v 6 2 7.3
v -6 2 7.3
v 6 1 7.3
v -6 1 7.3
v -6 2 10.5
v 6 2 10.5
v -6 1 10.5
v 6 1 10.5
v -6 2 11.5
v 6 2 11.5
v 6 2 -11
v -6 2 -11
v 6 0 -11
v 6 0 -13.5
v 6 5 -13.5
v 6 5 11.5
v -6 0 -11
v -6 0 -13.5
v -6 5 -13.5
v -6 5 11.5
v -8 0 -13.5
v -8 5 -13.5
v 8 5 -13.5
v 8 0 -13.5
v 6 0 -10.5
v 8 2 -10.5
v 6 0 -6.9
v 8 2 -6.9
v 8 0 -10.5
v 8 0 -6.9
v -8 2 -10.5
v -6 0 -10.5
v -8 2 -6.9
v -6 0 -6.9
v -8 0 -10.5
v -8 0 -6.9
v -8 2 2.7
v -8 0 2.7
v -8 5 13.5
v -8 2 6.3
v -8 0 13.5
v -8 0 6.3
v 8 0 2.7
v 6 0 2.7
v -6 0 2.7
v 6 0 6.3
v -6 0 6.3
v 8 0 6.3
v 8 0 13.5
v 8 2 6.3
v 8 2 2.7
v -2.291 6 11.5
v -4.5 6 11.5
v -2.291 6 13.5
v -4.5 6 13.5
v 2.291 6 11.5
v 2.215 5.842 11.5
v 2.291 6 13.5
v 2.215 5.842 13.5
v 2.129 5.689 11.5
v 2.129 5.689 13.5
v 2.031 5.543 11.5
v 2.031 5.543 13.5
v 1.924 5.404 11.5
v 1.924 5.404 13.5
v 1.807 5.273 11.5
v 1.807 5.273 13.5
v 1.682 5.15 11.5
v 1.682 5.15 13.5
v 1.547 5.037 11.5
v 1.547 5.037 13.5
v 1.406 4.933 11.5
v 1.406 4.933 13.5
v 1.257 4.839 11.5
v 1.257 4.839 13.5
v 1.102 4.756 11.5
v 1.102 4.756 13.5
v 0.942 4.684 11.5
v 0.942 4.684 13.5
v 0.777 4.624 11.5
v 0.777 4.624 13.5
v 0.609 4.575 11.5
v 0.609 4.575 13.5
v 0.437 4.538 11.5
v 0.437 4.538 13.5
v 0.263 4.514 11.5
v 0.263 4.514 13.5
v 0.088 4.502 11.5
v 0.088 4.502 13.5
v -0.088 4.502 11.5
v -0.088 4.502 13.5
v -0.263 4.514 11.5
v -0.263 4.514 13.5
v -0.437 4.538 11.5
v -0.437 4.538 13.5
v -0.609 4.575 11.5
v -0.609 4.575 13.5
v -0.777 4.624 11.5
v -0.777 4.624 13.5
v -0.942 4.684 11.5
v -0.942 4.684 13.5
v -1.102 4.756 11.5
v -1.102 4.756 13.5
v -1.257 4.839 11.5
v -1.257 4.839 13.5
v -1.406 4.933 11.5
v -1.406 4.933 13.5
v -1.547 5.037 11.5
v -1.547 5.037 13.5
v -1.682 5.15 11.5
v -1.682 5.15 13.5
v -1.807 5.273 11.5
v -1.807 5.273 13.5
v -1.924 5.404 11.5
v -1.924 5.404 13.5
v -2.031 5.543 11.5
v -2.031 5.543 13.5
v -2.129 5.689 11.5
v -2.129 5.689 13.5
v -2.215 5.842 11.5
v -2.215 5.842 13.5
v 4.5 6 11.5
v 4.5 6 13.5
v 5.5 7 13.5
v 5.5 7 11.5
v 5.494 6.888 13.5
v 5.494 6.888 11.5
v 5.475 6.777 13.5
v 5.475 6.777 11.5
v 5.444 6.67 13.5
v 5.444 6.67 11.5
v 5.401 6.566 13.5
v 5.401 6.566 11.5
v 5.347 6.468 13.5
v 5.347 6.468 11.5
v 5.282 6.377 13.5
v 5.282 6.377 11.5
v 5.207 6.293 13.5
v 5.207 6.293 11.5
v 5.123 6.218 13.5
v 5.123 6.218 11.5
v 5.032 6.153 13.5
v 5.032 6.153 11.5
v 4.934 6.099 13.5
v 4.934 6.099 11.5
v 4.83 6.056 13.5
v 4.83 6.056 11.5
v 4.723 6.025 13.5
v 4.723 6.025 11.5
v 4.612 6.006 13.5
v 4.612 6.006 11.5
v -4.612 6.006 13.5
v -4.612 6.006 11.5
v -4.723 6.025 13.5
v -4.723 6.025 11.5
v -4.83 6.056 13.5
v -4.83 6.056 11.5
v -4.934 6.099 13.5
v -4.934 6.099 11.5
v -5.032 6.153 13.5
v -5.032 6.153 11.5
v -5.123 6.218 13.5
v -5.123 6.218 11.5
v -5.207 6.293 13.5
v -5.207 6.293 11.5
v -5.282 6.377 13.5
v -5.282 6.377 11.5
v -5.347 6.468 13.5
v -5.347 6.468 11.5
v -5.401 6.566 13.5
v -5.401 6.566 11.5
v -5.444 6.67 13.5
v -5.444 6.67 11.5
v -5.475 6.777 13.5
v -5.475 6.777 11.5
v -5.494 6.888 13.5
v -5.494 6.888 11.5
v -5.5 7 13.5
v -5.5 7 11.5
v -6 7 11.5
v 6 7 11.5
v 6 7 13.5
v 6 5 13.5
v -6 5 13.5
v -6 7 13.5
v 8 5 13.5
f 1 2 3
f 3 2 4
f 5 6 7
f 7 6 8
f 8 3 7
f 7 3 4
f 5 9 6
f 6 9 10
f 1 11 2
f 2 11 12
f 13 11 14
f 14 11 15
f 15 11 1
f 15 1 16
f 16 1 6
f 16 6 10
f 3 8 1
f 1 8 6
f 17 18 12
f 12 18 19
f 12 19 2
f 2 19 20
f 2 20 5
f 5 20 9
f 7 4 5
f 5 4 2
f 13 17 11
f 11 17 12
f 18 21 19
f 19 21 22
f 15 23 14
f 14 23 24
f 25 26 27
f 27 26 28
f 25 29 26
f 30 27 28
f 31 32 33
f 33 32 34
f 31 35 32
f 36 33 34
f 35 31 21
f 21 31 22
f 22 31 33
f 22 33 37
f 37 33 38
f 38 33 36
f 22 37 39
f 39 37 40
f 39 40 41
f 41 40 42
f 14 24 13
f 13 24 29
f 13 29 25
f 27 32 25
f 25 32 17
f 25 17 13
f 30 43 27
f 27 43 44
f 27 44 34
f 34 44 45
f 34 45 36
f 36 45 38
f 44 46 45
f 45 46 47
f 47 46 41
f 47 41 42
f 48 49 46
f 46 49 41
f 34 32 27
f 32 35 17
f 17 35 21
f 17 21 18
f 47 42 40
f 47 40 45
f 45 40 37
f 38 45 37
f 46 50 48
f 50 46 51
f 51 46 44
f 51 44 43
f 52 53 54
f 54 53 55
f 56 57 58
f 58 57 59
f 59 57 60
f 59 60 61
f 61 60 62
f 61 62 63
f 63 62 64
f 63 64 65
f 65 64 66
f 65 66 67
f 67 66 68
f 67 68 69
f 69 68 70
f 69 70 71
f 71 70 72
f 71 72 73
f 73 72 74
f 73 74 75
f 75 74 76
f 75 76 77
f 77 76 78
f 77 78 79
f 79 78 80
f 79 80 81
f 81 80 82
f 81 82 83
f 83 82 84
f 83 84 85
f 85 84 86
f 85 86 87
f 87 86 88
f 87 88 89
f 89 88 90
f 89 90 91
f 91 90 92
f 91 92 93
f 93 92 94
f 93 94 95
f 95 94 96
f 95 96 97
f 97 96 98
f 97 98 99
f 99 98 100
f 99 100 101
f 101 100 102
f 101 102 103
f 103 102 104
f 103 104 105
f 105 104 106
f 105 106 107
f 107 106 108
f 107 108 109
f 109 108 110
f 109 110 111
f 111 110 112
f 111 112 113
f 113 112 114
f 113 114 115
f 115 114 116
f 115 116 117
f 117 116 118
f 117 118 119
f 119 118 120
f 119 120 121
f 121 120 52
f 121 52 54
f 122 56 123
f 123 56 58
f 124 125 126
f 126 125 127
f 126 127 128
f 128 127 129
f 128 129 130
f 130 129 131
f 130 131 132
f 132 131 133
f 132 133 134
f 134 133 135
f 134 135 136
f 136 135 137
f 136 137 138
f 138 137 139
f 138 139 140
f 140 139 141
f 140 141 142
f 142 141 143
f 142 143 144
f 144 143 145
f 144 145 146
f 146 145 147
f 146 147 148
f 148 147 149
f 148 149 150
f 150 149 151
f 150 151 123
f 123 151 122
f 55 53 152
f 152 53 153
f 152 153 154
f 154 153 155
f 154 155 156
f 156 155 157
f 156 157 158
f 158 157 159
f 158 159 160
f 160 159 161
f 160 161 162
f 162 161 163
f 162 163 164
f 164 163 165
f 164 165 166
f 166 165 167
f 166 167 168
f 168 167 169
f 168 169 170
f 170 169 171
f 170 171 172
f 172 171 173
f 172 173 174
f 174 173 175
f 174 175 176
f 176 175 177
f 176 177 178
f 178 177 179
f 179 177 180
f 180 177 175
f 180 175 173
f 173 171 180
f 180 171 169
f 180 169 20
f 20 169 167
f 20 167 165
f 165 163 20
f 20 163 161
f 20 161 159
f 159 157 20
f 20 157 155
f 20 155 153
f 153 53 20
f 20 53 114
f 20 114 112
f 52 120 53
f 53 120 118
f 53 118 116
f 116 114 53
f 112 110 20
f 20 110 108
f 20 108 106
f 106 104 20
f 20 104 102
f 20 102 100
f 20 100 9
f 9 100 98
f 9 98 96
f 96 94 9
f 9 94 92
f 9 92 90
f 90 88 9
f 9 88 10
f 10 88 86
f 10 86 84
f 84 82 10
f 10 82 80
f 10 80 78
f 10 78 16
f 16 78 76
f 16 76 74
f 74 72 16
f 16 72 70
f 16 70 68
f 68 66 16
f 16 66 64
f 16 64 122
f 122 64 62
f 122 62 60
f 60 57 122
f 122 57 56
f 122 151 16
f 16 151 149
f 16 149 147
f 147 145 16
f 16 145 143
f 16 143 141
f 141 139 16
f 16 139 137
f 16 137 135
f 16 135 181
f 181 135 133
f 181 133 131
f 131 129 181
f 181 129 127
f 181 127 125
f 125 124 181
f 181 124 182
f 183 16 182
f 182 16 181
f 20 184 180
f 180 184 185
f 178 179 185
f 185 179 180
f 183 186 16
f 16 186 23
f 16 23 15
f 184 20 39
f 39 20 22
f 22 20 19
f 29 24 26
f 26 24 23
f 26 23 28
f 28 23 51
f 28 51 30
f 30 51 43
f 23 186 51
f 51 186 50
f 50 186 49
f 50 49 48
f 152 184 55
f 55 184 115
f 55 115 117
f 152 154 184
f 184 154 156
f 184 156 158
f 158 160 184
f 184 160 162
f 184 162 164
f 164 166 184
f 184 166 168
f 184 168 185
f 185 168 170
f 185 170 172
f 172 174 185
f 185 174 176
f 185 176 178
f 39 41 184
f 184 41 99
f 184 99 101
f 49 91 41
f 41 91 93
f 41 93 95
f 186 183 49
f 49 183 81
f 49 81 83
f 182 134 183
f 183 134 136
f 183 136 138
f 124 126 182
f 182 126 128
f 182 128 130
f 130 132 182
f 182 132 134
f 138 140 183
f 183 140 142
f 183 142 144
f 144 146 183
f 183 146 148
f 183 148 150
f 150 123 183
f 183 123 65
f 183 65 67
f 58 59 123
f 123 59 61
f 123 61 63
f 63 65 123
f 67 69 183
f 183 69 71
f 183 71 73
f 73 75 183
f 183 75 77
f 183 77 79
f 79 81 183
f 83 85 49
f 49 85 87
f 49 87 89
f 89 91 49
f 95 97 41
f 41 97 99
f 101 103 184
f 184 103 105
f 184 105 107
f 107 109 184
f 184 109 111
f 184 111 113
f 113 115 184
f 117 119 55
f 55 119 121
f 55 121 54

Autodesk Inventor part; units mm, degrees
ref_plane "YZ Plane" through (0, 0, 0) normal (1, 0, 0) x (0, 1, 0)
sketch "Sketch1" plane through (0, 0, 0) normal (0, 1, 0) x (-1, 0, 0)
  line L0 (8, 13.5) -> (-8, 13.5)
  line L1 (-8, 13.5) -> (-8, -13.5)
  line L2 (-8, -13.5) -> (8, -13.5)
  line L3 (8, -13.5) -> (8, 13.5)
  line L4 (8, 13.5) -> (-8, -13.5) construction
  line L5 (-8, 13.5) -> (8, -13.5) construction
  point P0 (0, 0)
  dimension "d0" = 16
  dimension "d1" = 27
extrude "Extrusion1" add sketch "Sketch1" along normal blind 2
sketch "Sketch2" plane through (0, 2, 0) normal (0, 1, 0) x (1, 0, 0)
  line L0 (8, 13.5) -> (-8, 13.5) projected
  line L1 (-6, 13.5) -> (6, 13.5)
  line L2 (6, 13.5) -> (6, -11.5)
  line L3 (6, -11.5) -> (-6, -11.5)
  line L4 (-6, -11.5) -> (-6, 13.5)
  line L5 (8, -13.5) -> (8, 13.5) projected
  line L6 (-8, 13.5) -> (-8, -13.5) projected
  line L7 (-8, -13.5) -> (8, -13.5) projected
  point P0 (0, 0)
  dimension "d4" = 2
  dimension "d5" = 2
  dimension "d6" = 2
extrude "Extrusion2" add sketch "Sketch2" along normal blind 3 contours L5 L7 L6 L0 L4 L3 L2
sketch "Sketch4" plane through (0, 5, 0) normal (0, 1, 0) x (1, 0, 0)
  line L0 (6, -11.5) -> (-6, -11.5) projected
  line L1 (-8, -13.5) -> (8, -13.5) projected
  line L2 (-6, -11.5) -> (6, -11.5)
  line L3 (6, -11.5) -> (6, -13.5)
  line L4 (6, -13.5) -> (-6, -13.5)
  line L5 (-6, -13.5) -> (-6, -11.5)
  line L6 (6, 13.5) -> (6, -11.5) projected
  point P0 (0, 0)
extrude "Extrusion3" add sketch "Sketch4" along normal blind 2
sketch "Sketch3" plane through (-8, 0, 13.5) normal (0, 0, 1) x (1, 0, 0)
  line L0 (14, 2) -> (2, 2) construction
  line L1 (2, 2) -> (14, 2) construction
  circle A0 centre (8, 7) radius 2.5
  line L2 (8, 11.4) -> (8, -1.9) construction
  line L3 (3.5, 7) -> (12.5, 7) construction
  circle A1 centre (3.5, 7) radius 1
  circle A2 centre (12.5, 7) radius 1
  line L4 (3.5, 8) -> (5.7087, 8)
  line L5 (12.5, 8) -> (10.2913, 8)
  line L6 (12.5, 6) -> (10.2913, 6)
  line L7 (5.7087, 6) -> (3.5, 6)
  point P0 (8, 0)
  dimension "d9" = 5
  dimension "d10" = 5
  dimension "d11" = 9
  dimension "d12" = 2
  dimension "d13" = 2
extrude "Extrusion4" cut sketch "Sketch3" against normal up to next
ref_plane "Work Plane1" through (6, 2, 4.5) normal (0, 0, -1) x (-1, 0, 0)
ref_plane "Work Plane2" through (6, 2, -10.5) normal (0, 0, -1) x (-1, 0, 0)
sketch "Sketch6" plane through (6, 2, 4.5) normal (0, 0, -1) x (-1, 0, 0)
  line L0 (-2, -2) -> (-2, 0)
  line L1 (-2, -2) -> (-2, 3) projected
  line L2 (-2, 0) -> (0, -2)
  line L3 (-2, -2) -> (14, -2) projected
  line L4 (0, -2) -> (-2, -2)
  line L5 (6, -3.4) -> (6, 6.4) construction
  line L6 (14, -2) -> (14, 0)
  line L7 (14, 0) -> (12, -2)
  line L8 (12, -2) -> (14, -2)
  point P0 (6, -2)
  dimension "d22" = 2
  dimension "d23" = 45
extrude "Extrusion5" cut sketch "Sketch6" along normal mid plane 3.6
sketch "Sketch7" plane through (6, 2, -10.5) normal (0, 0, -1) x (-1, 0, 0)
  line L0 (-2, 0) -> (0, -2) projected
  line L1 (-2, -2) -> (-2, 0) projected
  line L2 (0, -2) -> (-2, -2) projected
  line L3 (12, -2) -> (14, 0) projected
  line L4 (14, -2) -> (12, -2) projected
  line L5 (14, 0) -> (14, -2) projected
  point P0 (6, -2)
extrude "Extrusion6" cut sketch "Sketch7" against normal blind 3.6
sketch "Sketch8" plane through (0, 2, 0) normal (0, 1, 0) x (1, 0, 0)
  line L0 (-6, 13.5) -> (-6, -11.5) projected
  line L1 (6, -11.5) -> (6, 13.5) projected
  line L2 (-6, 13.5) -> (6, 13.5)
  line L3 (6, 13.5) -> (6, 11)
  line L4 (6, 11) -> (-6, 11)
  line L5 (-6, 11) -> (-6, 13.5)
  line L6 (-2.2913, -11.5) -> (2.2913, -11.5) projected
  point P0 (0, 0)
  point P1 (6, 13.5)
  point P2 (-6, 11)
  dimension "d28" = 22.5
extrude "Extrusion7" cut sketch "Sketch8" against normal up to next
sketch "Sketch9" plane through (0, 2, 0) normal (0, 1, 0) x (1, 0, 0)
  line L0 (-6, 11) -> (-6, -11.5) projected
  line L1 (6, -11.5) -> (6, 11) projected
  line L2 (-6, -10.5) -> (6, -10.5)
  line L3 (6, -10.5) -> (6, -7.3)
  line L4 (6, -7.3) -> (-6, -7.3)
  line L5 (-6, -7.3) -> (-6, -10.5)
  line L6 (-2.2913, -11.5) -> (2.2913, -11.5) projected
  point P0 (0, 0)
  point P1 (6, -10.5)
  dimension "d31" = 1
  dimension "d32" = 3.2
extrude "Extrusion8" cut sketch "Sketch9" against normal blind 1
equation "\"d5\" = d4"
equation "\"d6\" = d4"
properties part number "motor_top"
